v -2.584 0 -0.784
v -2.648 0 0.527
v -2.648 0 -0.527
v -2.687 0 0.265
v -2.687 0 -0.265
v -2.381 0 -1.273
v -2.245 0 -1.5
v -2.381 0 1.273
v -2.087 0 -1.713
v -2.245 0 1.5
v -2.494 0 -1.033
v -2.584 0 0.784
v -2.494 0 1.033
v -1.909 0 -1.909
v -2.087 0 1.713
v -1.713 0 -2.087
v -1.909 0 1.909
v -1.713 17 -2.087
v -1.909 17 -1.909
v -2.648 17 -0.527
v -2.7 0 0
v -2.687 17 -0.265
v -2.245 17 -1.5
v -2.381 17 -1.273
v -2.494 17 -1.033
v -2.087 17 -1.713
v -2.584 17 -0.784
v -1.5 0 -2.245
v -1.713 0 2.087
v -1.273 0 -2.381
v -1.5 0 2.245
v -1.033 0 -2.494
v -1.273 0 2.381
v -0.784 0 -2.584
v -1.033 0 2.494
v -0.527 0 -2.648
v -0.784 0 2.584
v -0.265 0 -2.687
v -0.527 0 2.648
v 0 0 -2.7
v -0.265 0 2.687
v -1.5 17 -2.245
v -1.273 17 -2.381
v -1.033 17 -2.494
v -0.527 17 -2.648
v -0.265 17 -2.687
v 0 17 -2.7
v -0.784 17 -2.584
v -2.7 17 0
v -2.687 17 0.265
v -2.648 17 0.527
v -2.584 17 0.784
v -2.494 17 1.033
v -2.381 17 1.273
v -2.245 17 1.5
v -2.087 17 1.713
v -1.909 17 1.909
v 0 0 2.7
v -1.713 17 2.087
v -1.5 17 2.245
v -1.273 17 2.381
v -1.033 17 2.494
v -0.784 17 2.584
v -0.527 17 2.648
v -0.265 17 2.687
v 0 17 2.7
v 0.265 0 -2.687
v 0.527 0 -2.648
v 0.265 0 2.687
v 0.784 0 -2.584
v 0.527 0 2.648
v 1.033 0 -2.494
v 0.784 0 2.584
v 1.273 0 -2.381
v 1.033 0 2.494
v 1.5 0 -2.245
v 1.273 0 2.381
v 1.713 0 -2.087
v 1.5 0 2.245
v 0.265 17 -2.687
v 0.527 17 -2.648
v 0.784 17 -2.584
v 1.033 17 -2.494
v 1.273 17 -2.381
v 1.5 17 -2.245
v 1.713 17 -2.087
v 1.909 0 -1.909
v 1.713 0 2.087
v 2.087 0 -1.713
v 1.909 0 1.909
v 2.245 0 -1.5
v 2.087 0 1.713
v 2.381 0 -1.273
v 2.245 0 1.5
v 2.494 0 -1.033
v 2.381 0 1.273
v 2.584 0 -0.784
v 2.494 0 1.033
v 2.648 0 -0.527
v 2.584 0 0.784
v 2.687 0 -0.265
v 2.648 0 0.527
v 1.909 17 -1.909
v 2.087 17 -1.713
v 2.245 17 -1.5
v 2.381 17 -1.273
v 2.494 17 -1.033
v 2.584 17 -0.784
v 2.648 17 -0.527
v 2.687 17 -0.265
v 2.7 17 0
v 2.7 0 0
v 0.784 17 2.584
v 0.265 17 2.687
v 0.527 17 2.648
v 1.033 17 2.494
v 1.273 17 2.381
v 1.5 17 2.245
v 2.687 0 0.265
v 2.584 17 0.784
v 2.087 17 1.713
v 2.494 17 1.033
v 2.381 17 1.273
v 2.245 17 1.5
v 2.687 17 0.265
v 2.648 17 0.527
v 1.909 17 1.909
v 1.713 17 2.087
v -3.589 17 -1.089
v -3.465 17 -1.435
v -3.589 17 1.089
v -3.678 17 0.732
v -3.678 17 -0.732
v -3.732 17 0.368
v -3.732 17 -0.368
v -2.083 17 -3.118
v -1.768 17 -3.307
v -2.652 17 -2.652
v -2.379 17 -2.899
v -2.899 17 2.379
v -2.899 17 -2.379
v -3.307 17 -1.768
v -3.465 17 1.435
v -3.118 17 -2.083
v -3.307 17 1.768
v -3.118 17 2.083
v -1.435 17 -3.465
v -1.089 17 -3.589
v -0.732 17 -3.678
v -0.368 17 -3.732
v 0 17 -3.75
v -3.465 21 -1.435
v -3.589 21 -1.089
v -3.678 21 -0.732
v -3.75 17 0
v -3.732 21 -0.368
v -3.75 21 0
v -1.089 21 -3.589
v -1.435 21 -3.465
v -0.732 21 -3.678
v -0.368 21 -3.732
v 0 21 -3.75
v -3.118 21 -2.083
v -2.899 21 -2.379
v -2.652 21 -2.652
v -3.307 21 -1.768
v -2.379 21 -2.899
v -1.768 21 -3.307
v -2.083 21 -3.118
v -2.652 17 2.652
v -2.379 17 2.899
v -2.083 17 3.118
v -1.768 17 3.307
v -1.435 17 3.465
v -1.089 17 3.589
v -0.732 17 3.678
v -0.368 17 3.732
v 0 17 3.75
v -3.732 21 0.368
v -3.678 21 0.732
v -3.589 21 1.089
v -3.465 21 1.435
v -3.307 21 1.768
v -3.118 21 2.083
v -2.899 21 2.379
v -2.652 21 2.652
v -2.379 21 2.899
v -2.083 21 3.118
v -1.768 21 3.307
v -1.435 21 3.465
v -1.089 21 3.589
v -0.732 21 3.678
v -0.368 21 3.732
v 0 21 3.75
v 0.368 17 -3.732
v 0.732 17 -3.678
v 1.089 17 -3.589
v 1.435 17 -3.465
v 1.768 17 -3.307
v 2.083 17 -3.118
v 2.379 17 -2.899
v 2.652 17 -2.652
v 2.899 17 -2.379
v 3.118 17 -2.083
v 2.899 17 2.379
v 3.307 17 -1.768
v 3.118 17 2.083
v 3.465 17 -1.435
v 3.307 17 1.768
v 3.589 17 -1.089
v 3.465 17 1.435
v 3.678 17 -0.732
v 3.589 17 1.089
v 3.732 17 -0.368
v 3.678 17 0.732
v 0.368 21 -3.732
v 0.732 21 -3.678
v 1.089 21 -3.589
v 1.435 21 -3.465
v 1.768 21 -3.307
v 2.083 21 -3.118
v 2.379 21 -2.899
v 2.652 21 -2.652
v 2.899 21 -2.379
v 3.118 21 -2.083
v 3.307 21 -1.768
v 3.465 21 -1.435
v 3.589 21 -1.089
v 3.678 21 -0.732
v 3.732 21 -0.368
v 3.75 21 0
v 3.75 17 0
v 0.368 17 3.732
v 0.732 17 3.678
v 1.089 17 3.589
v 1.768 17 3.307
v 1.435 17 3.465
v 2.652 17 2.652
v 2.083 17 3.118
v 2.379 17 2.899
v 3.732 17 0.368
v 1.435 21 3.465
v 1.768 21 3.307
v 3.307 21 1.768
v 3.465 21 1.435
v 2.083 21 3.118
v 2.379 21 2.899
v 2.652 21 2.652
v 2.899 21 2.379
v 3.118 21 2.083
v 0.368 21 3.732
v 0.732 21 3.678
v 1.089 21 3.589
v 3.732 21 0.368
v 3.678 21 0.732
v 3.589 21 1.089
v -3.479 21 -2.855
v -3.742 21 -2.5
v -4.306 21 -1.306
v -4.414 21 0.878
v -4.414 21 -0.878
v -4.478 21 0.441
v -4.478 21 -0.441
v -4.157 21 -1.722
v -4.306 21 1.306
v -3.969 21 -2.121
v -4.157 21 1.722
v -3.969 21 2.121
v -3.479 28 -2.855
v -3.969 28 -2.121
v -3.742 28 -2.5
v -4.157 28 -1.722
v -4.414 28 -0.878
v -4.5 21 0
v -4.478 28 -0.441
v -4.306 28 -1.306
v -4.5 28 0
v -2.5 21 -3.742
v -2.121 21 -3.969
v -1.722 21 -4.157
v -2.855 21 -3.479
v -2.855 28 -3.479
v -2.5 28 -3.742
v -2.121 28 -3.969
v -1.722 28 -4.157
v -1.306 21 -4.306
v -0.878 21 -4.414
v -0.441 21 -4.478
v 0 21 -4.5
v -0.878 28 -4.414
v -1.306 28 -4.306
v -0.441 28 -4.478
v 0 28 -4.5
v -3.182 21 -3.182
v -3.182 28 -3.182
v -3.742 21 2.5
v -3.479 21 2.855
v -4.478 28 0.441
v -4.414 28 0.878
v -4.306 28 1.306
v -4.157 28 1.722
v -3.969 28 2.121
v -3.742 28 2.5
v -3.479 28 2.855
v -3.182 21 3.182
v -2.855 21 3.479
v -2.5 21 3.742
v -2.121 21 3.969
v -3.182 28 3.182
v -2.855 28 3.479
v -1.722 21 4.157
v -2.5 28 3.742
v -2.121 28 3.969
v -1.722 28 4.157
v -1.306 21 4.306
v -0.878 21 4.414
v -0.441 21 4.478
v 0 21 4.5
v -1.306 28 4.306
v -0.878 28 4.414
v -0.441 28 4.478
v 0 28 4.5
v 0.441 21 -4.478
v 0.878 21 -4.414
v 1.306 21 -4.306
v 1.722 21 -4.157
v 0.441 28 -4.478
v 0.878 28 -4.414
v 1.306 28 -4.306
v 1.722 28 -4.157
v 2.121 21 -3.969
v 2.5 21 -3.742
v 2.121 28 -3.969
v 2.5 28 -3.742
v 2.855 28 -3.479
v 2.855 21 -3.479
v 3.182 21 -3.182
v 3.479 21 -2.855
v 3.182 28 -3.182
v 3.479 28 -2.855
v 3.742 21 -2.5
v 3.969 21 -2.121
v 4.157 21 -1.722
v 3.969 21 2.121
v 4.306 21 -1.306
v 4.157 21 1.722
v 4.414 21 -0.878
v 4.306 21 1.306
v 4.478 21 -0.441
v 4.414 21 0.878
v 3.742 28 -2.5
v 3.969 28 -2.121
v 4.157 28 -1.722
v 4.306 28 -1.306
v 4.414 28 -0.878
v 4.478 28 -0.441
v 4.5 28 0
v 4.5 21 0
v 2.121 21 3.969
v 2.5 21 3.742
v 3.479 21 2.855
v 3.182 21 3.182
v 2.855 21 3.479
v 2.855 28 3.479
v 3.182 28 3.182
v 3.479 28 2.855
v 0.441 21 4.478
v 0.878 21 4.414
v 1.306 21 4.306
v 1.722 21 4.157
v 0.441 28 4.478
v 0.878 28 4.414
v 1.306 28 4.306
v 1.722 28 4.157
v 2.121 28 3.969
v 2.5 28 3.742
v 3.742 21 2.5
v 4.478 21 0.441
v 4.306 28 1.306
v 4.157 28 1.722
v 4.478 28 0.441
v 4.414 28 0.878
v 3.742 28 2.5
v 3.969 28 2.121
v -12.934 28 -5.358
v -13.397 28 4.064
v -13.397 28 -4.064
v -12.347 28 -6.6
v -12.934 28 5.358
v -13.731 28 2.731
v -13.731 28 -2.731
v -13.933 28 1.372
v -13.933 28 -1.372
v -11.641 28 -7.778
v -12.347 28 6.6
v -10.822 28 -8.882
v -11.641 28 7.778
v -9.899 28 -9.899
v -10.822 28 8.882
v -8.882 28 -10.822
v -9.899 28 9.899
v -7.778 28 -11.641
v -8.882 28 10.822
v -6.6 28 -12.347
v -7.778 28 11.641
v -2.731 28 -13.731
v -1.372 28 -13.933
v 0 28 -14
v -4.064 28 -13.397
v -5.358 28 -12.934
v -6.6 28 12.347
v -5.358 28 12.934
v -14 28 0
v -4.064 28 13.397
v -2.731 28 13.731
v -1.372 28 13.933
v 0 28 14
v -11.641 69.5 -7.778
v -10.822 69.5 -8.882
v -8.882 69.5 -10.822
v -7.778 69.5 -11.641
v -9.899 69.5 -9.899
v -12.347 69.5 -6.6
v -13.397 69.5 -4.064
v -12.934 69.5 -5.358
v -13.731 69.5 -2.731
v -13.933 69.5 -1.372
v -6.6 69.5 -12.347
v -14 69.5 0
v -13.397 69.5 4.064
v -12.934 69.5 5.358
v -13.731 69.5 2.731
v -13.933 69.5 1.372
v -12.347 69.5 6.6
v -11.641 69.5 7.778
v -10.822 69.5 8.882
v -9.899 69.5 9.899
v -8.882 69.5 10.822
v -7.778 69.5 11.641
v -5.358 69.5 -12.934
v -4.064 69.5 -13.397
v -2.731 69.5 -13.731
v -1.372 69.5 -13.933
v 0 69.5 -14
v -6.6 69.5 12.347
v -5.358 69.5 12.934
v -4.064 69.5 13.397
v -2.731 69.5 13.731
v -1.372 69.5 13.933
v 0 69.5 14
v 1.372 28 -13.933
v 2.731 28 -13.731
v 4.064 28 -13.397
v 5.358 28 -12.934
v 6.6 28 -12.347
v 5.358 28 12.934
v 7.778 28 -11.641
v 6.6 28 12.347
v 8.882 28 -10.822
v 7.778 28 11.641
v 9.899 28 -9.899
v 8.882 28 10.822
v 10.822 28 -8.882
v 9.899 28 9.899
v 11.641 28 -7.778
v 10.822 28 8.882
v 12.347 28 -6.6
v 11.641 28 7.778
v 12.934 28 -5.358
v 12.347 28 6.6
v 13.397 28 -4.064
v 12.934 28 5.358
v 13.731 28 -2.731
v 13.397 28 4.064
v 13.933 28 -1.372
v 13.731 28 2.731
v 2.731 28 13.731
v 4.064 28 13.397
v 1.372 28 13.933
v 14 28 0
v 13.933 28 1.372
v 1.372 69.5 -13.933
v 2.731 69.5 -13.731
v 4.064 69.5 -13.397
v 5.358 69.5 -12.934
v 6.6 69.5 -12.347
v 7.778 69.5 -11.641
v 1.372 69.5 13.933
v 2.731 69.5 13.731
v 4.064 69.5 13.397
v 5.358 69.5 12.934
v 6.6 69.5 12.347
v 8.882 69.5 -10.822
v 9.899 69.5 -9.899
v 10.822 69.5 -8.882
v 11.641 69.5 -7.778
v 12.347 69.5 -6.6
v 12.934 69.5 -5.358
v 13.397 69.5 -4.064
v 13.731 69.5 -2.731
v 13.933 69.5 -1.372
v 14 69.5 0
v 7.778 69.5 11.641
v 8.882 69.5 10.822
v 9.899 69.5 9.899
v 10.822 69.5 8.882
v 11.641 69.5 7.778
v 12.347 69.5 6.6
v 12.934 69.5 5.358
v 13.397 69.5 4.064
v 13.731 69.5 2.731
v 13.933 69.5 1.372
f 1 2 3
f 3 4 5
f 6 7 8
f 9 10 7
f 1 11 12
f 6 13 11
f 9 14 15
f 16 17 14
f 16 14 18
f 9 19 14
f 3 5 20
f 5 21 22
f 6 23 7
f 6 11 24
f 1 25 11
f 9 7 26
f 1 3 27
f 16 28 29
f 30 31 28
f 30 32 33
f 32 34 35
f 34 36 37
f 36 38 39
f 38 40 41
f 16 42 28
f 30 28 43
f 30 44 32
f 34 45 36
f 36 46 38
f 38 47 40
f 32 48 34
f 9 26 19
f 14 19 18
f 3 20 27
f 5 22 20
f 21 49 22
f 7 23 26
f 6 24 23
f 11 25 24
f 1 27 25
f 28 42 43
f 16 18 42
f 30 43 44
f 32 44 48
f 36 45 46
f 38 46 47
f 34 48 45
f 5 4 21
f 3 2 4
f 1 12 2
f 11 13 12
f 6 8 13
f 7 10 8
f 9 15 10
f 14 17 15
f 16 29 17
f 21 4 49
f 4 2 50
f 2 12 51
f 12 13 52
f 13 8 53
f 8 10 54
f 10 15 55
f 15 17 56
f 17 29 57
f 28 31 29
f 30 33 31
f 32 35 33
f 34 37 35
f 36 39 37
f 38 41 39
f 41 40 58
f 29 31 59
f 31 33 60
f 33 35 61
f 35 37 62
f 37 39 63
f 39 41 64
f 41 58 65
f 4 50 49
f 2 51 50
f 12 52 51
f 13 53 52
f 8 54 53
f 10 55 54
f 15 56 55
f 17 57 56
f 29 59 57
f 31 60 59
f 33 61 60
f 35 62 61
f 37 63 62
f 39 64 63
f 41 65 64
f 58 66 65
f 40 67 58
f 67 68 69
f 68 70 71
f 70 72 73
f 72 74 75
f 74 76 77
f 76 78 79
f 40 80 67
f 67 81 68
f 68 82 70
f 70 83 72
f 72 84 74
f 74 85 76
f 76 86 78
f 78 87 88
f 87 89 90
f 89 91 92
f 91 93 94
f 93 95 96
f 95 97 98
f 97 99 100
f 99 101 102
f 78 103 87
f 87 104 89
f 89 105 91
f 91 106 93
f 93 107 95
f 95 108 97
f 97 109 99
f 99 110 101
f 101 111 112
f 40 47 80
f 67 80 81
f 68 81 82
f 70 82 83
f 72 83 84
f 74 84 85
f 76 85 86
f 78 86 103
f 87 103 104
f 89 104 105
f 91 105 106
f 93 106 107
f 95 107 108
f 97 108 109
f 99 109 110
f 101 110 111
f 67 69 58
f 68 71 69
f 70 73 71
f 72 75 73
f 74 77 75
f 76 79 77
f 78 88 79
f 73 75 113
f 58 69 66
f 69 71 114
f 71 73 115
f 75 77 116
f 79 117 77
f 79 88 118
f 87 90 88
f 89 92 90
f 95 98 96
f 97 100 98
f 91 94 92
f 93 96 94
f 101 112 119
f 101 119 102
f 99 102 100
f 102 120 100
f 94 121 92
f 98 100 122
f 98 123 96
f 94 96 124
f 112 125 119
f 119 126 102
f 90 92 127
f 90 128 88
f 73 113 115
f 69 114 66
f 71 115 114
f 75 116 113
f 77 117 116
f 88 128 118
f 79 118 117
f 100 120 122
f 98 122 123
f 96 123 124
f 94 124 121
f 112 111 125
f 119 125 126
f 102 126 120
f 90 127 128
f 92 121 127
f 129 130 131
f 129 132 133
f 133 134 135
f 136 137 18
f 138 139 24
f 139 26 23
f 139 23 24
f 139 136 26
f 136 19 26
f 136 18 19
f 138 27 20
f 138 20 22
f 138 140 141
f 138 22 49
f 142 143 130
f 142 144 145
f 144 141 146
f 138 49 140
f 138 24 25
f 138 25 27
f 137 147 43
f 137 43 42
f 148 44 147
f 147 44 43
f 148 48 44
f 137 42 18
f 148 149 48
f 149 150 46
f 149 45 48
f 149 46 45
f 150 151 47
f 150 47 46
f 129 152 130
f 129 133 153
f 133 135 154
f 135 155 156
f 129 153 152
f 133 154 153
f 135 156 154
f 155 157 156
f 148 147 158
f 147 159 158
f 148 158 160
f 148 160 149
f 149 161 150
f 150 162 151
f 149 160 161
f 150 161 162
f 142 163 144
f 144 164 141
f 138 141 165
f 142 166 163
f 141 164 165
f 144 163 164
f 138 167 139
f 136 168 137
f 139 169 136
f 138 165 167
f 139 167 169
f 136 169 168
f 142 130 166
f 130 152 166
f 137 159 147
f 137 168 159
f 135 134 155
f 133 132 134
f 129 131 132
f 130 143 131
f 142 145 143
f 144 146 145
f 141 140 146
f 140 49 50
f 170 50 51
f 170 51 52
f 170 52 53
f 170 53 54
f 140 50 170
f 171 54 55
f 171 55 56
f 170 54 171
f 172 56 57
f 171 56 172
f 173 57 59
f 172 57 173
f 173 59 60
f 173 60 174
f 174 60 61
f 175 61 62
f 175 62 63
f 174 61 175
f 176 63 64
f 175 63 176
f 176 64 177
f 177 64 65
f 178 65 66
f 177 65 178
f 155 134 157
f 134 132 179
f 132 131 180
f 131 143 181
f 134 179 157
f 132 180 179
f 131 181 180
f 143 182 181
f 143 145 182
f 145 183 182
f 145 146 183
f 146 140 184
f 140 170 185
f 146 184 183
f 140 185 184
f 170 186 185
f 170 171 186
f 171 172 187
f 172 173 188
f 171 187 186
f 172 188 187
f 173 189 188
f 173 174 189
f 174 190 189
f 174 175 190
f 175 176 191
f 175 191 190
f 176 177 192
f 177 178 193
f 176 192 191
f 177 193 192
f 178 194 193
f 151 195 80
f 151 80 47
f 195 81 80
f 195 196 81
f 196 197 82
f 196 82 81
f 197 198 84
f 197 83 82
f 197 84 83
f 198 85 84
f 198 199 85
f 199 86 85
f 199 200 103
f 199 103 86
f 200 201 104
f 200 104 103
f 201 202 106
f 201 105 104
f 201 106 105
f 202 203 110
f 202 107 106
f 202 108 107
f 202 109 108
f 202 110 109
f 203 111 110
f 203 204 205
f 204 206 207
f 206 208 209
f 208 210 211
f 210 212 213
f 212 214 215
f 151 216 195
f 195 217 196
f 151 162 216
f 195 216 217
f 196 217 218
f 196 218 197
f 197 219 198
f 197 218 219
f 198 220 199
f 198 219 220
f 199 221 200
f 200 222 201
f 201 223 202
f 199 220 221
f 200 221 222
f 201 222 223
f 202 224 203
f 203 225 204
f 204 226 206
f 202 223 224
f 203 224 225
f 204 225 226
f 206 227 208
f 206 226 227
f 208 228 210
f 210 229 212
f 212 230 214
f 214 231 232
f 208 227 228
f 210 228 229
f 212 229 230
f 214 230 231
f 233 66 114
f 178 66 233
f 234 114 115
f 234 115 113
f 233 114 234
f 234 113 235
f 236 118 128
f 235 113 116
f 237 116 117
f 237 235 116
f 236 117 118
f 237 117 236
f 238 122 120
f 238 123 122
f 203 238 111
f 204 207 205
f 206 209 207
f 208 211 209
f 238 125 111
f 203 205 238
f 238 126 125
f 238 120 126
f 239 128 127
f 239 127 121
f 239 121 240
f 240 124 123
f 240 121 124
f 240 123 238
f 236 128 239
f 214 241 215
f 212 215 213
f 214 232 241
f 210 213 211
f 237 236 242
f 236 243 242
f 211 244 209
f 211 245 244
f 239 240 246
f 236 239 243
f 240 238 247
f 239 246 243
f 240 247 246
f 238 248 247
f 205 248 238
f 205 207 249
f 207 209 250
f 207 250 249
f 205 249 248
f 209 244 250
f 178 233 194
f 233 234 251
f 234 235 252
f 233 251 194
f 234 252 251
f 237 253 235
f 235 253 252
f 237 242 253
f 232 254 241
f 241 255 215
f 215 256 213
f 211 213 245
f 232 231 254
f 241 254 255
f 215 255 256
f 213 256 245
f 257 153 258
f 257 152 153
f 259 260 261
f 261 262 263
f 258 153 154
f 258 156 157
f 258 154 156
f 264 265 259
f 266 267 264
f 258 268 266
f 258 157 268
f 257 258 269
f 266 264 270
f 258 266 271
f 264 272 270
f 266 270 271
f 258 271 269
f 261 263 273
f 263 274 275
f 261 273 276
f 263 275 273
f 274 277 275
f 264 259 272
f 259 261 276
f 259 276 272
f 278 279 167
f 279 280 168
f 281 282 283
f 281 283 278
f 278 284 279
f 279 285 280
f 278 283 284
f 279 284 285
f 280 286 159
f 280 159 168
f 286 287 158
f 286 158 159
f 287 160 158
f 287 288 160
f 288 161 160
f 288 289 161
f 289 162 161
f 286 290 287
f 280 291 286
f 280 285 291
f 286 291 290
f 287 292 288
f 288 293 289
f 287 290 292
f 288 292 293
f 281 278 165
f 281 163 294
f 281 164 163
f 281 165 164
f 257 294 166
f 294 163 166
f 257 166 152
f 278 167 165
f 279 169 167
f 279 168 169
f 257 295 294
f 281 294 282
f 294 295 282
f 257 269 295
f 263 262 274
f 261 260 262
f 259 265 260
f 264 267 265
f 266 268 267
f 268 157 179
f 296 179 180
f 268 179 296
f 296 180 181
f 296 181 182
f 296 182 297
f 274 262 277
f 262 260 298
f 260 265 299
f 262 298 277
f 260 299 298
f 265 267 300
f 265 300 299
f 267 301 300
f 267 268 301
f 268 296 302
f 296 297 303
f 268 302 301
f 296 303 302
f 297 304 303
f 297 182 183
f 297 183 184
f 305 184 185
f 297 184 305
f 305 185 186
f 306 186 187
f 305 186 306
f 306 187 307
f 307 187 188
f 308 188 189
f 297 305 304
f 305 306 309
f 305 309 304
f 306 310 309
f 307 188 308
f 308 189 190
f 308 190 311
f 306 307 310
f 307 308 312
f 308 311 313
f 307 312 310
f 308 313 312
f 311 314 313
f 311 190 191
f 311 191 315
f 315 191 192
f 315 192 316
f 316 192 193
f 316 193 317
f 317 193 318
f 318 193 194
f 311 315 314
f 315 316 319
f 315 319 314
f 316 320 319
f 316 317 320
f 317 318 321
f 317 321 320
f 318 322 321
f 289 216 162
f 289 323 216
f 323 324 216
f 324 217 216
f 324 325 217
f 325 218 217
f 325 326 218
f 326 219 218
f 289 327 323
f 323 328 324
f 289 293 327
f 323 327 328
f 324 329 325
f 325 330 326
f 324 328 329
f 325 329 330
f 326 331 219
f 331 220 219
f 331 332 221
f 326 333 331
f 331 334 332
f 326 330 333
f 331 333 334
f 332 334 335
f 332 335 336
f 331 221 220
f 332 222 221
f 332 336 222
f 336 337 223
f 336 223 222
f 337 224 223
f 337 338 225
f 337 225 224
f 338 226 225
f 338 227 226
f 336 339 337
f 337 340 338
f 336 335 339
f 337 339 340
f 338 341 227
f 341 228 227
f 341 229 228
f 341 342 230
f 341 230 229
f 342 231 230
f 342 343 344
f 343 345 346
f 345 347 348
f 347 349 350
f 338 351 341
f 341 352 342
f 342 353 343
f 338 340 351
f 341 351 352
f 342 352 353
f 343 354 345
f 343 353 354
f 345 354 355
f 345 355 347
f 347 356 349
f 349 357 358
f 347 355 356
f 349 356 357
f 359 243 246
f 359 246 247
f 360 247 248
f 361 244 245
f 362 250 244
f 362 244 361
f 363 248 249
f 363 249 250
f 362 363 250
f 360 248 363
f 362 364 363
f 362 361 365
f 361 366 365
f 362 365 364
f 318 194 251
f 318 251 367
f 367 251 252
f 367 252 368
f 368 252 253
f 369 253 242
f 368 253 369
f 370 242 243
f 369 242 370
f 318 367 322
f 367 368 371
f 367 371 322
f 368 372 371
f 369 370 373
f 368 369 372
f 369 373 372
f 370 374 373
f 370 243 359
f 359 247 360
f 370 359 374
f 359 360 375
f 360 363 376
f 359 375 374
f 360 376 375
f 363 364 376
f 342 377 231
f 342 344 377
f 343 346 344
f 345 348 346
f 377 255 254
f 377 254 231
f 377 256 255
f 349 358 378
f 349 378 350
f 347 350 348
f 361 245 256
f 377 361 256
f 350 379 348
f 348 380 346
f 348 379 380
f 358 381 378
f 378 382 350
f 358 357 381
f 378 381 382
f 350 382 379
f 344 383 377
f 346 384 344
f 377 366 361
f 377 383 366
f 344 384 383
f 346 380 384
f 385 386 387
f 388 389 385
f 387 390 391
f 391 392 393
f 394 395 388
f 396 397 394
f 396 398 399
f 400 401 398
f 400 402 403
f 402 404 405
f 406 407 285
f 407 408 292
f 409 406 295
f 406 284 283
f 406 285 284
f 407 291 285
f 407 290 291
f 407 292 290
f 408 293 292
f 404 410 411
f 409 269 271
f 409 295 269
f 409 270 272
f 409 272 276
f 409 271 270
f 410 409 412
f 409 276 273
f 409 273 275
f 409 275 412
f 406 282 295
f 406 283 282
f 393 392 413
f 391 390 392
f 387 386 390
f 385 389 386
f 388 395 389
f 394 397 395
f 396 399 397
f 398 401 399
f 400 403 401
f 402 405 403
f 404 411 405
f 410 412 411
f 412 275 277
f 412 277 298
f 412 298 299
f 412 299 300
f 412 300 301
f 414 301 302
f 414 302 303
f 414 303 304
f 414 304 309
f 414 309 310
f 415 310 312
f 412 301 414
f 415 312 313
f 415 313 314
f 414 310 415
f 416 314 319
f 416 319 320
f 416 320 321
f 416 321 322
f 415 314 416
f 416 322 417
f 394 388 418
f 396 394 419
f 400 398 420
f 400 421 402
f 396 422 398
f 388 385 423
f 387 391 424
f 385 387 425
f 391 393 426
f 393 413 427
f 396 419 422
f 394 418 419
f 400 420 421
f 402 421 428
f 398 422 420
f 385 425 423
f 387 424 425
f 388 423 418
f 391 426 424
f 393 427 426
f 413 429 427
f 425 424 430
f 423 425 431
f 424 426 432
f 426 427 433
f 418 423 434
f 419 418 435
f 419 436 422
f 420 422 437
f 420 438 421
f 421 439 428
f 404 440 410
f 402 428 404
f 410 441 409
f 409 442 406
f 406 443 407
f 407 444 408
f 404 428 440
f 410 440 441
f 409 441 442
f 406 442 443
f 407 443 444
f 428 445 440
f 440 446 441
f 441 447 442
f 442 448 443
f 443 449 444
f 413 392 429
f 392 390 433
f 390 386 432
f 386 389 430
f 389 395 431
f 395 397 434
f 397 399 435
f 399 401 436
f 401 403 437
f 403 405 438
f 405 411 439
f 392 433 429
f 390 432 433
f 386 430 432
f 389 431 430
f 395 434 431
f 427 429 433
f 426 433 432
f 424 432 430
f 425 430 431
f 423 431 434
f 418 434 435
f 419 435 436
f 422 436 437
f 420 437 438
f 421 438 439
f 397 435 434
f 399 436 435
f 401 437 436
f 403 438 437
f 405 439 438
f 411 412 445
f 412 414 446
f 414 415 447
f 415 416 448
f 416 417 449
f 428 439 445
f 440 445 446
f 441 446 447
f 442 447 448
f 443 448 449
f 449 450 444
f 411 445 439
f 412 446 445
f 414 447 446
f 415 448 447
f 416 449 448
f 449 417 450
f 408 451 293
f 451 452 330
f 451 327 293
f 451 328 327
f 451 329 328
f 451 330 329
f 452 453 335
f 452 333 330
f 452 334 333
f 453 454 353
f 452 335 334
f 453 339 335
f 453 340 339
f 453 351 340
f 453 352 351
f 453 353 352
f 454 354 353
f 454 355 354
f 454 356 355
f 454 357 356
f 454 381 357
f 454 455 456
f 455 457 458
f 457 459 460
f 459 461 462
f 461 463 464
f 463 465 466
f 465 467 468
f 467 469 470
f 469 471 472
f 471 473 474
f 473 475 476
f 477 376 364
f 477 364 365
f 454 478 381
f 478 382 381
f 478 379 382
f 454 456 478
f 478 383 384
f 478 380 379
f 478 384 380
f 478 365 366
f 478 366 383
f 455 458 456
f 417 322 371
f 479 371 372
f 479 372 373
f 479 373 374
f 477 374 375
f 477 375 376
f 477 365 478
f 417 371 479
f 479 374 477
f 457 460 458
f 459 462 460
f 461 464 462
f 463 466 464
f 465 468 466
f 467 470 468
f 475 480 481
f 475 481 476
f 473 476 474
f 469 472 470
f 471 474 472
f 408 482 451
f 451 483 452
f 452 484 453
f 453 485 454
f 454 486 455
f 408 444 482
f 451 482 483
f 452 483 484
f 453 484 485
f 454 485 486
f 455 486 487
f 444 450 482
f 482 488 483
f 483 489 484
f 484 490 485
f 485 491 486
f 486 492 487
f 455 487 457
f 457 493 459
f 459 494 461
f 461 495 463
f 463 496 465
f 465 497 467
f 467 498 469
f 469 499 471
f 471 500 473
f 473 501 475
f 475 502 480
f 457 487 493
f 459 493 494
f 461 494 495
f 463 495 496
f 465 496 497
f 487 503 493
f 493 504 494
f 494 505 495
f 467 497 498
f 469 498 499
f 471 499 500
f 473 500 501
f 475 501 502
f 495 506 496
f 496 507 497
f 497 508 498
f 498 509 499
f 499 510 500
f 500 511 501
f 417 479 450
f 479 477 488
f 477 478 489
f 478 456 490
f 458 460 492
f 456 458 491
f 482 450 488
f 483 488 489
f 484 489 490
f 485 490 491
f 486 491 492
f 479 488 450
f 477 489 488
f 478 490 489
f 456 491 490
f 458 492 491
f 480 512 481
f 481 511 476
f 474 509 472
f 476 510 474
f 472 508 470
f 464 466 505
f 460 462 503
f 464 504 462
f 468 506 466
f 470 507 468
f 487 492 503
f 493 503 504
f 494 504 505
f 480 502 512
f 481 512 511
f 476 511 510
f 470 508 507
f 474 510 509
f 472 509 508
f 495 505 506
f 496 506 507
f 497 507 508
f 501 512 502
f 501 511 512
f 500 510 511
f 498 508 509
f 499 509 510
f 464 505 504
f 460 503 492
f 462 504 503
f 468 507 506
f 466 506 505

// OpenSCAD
// Picquic Teeny Turner precision multi-driver
// Four coaxial sections follow the archived OOMP drawing, read at its document scale. The handle and exposed bit use simplified round sections.
// Units: mm
$fn = 64;
union() {
    translate([0, 0, 0]) rotate([-90, 0, 0])
        cylinder(h=17, r1=2.7, r2=2.7, $fn=64);
    translate([0, 17, 0]) rotate([-90, 0, 0])
        cylinder(h=4, r1=3.75, r2=3.75, $fn=64);
    translate([0, 21, 0]) rotate([-90, 0, 0])
        cylinder(h=7, r1=4.5, r2=4.5, $fn=64);
    translate([0, 28, 0]) rotate([-90, 0, 0])
        cylinder(h=41.5, r1=14.0, r2=14.0, $fn=64);
}
